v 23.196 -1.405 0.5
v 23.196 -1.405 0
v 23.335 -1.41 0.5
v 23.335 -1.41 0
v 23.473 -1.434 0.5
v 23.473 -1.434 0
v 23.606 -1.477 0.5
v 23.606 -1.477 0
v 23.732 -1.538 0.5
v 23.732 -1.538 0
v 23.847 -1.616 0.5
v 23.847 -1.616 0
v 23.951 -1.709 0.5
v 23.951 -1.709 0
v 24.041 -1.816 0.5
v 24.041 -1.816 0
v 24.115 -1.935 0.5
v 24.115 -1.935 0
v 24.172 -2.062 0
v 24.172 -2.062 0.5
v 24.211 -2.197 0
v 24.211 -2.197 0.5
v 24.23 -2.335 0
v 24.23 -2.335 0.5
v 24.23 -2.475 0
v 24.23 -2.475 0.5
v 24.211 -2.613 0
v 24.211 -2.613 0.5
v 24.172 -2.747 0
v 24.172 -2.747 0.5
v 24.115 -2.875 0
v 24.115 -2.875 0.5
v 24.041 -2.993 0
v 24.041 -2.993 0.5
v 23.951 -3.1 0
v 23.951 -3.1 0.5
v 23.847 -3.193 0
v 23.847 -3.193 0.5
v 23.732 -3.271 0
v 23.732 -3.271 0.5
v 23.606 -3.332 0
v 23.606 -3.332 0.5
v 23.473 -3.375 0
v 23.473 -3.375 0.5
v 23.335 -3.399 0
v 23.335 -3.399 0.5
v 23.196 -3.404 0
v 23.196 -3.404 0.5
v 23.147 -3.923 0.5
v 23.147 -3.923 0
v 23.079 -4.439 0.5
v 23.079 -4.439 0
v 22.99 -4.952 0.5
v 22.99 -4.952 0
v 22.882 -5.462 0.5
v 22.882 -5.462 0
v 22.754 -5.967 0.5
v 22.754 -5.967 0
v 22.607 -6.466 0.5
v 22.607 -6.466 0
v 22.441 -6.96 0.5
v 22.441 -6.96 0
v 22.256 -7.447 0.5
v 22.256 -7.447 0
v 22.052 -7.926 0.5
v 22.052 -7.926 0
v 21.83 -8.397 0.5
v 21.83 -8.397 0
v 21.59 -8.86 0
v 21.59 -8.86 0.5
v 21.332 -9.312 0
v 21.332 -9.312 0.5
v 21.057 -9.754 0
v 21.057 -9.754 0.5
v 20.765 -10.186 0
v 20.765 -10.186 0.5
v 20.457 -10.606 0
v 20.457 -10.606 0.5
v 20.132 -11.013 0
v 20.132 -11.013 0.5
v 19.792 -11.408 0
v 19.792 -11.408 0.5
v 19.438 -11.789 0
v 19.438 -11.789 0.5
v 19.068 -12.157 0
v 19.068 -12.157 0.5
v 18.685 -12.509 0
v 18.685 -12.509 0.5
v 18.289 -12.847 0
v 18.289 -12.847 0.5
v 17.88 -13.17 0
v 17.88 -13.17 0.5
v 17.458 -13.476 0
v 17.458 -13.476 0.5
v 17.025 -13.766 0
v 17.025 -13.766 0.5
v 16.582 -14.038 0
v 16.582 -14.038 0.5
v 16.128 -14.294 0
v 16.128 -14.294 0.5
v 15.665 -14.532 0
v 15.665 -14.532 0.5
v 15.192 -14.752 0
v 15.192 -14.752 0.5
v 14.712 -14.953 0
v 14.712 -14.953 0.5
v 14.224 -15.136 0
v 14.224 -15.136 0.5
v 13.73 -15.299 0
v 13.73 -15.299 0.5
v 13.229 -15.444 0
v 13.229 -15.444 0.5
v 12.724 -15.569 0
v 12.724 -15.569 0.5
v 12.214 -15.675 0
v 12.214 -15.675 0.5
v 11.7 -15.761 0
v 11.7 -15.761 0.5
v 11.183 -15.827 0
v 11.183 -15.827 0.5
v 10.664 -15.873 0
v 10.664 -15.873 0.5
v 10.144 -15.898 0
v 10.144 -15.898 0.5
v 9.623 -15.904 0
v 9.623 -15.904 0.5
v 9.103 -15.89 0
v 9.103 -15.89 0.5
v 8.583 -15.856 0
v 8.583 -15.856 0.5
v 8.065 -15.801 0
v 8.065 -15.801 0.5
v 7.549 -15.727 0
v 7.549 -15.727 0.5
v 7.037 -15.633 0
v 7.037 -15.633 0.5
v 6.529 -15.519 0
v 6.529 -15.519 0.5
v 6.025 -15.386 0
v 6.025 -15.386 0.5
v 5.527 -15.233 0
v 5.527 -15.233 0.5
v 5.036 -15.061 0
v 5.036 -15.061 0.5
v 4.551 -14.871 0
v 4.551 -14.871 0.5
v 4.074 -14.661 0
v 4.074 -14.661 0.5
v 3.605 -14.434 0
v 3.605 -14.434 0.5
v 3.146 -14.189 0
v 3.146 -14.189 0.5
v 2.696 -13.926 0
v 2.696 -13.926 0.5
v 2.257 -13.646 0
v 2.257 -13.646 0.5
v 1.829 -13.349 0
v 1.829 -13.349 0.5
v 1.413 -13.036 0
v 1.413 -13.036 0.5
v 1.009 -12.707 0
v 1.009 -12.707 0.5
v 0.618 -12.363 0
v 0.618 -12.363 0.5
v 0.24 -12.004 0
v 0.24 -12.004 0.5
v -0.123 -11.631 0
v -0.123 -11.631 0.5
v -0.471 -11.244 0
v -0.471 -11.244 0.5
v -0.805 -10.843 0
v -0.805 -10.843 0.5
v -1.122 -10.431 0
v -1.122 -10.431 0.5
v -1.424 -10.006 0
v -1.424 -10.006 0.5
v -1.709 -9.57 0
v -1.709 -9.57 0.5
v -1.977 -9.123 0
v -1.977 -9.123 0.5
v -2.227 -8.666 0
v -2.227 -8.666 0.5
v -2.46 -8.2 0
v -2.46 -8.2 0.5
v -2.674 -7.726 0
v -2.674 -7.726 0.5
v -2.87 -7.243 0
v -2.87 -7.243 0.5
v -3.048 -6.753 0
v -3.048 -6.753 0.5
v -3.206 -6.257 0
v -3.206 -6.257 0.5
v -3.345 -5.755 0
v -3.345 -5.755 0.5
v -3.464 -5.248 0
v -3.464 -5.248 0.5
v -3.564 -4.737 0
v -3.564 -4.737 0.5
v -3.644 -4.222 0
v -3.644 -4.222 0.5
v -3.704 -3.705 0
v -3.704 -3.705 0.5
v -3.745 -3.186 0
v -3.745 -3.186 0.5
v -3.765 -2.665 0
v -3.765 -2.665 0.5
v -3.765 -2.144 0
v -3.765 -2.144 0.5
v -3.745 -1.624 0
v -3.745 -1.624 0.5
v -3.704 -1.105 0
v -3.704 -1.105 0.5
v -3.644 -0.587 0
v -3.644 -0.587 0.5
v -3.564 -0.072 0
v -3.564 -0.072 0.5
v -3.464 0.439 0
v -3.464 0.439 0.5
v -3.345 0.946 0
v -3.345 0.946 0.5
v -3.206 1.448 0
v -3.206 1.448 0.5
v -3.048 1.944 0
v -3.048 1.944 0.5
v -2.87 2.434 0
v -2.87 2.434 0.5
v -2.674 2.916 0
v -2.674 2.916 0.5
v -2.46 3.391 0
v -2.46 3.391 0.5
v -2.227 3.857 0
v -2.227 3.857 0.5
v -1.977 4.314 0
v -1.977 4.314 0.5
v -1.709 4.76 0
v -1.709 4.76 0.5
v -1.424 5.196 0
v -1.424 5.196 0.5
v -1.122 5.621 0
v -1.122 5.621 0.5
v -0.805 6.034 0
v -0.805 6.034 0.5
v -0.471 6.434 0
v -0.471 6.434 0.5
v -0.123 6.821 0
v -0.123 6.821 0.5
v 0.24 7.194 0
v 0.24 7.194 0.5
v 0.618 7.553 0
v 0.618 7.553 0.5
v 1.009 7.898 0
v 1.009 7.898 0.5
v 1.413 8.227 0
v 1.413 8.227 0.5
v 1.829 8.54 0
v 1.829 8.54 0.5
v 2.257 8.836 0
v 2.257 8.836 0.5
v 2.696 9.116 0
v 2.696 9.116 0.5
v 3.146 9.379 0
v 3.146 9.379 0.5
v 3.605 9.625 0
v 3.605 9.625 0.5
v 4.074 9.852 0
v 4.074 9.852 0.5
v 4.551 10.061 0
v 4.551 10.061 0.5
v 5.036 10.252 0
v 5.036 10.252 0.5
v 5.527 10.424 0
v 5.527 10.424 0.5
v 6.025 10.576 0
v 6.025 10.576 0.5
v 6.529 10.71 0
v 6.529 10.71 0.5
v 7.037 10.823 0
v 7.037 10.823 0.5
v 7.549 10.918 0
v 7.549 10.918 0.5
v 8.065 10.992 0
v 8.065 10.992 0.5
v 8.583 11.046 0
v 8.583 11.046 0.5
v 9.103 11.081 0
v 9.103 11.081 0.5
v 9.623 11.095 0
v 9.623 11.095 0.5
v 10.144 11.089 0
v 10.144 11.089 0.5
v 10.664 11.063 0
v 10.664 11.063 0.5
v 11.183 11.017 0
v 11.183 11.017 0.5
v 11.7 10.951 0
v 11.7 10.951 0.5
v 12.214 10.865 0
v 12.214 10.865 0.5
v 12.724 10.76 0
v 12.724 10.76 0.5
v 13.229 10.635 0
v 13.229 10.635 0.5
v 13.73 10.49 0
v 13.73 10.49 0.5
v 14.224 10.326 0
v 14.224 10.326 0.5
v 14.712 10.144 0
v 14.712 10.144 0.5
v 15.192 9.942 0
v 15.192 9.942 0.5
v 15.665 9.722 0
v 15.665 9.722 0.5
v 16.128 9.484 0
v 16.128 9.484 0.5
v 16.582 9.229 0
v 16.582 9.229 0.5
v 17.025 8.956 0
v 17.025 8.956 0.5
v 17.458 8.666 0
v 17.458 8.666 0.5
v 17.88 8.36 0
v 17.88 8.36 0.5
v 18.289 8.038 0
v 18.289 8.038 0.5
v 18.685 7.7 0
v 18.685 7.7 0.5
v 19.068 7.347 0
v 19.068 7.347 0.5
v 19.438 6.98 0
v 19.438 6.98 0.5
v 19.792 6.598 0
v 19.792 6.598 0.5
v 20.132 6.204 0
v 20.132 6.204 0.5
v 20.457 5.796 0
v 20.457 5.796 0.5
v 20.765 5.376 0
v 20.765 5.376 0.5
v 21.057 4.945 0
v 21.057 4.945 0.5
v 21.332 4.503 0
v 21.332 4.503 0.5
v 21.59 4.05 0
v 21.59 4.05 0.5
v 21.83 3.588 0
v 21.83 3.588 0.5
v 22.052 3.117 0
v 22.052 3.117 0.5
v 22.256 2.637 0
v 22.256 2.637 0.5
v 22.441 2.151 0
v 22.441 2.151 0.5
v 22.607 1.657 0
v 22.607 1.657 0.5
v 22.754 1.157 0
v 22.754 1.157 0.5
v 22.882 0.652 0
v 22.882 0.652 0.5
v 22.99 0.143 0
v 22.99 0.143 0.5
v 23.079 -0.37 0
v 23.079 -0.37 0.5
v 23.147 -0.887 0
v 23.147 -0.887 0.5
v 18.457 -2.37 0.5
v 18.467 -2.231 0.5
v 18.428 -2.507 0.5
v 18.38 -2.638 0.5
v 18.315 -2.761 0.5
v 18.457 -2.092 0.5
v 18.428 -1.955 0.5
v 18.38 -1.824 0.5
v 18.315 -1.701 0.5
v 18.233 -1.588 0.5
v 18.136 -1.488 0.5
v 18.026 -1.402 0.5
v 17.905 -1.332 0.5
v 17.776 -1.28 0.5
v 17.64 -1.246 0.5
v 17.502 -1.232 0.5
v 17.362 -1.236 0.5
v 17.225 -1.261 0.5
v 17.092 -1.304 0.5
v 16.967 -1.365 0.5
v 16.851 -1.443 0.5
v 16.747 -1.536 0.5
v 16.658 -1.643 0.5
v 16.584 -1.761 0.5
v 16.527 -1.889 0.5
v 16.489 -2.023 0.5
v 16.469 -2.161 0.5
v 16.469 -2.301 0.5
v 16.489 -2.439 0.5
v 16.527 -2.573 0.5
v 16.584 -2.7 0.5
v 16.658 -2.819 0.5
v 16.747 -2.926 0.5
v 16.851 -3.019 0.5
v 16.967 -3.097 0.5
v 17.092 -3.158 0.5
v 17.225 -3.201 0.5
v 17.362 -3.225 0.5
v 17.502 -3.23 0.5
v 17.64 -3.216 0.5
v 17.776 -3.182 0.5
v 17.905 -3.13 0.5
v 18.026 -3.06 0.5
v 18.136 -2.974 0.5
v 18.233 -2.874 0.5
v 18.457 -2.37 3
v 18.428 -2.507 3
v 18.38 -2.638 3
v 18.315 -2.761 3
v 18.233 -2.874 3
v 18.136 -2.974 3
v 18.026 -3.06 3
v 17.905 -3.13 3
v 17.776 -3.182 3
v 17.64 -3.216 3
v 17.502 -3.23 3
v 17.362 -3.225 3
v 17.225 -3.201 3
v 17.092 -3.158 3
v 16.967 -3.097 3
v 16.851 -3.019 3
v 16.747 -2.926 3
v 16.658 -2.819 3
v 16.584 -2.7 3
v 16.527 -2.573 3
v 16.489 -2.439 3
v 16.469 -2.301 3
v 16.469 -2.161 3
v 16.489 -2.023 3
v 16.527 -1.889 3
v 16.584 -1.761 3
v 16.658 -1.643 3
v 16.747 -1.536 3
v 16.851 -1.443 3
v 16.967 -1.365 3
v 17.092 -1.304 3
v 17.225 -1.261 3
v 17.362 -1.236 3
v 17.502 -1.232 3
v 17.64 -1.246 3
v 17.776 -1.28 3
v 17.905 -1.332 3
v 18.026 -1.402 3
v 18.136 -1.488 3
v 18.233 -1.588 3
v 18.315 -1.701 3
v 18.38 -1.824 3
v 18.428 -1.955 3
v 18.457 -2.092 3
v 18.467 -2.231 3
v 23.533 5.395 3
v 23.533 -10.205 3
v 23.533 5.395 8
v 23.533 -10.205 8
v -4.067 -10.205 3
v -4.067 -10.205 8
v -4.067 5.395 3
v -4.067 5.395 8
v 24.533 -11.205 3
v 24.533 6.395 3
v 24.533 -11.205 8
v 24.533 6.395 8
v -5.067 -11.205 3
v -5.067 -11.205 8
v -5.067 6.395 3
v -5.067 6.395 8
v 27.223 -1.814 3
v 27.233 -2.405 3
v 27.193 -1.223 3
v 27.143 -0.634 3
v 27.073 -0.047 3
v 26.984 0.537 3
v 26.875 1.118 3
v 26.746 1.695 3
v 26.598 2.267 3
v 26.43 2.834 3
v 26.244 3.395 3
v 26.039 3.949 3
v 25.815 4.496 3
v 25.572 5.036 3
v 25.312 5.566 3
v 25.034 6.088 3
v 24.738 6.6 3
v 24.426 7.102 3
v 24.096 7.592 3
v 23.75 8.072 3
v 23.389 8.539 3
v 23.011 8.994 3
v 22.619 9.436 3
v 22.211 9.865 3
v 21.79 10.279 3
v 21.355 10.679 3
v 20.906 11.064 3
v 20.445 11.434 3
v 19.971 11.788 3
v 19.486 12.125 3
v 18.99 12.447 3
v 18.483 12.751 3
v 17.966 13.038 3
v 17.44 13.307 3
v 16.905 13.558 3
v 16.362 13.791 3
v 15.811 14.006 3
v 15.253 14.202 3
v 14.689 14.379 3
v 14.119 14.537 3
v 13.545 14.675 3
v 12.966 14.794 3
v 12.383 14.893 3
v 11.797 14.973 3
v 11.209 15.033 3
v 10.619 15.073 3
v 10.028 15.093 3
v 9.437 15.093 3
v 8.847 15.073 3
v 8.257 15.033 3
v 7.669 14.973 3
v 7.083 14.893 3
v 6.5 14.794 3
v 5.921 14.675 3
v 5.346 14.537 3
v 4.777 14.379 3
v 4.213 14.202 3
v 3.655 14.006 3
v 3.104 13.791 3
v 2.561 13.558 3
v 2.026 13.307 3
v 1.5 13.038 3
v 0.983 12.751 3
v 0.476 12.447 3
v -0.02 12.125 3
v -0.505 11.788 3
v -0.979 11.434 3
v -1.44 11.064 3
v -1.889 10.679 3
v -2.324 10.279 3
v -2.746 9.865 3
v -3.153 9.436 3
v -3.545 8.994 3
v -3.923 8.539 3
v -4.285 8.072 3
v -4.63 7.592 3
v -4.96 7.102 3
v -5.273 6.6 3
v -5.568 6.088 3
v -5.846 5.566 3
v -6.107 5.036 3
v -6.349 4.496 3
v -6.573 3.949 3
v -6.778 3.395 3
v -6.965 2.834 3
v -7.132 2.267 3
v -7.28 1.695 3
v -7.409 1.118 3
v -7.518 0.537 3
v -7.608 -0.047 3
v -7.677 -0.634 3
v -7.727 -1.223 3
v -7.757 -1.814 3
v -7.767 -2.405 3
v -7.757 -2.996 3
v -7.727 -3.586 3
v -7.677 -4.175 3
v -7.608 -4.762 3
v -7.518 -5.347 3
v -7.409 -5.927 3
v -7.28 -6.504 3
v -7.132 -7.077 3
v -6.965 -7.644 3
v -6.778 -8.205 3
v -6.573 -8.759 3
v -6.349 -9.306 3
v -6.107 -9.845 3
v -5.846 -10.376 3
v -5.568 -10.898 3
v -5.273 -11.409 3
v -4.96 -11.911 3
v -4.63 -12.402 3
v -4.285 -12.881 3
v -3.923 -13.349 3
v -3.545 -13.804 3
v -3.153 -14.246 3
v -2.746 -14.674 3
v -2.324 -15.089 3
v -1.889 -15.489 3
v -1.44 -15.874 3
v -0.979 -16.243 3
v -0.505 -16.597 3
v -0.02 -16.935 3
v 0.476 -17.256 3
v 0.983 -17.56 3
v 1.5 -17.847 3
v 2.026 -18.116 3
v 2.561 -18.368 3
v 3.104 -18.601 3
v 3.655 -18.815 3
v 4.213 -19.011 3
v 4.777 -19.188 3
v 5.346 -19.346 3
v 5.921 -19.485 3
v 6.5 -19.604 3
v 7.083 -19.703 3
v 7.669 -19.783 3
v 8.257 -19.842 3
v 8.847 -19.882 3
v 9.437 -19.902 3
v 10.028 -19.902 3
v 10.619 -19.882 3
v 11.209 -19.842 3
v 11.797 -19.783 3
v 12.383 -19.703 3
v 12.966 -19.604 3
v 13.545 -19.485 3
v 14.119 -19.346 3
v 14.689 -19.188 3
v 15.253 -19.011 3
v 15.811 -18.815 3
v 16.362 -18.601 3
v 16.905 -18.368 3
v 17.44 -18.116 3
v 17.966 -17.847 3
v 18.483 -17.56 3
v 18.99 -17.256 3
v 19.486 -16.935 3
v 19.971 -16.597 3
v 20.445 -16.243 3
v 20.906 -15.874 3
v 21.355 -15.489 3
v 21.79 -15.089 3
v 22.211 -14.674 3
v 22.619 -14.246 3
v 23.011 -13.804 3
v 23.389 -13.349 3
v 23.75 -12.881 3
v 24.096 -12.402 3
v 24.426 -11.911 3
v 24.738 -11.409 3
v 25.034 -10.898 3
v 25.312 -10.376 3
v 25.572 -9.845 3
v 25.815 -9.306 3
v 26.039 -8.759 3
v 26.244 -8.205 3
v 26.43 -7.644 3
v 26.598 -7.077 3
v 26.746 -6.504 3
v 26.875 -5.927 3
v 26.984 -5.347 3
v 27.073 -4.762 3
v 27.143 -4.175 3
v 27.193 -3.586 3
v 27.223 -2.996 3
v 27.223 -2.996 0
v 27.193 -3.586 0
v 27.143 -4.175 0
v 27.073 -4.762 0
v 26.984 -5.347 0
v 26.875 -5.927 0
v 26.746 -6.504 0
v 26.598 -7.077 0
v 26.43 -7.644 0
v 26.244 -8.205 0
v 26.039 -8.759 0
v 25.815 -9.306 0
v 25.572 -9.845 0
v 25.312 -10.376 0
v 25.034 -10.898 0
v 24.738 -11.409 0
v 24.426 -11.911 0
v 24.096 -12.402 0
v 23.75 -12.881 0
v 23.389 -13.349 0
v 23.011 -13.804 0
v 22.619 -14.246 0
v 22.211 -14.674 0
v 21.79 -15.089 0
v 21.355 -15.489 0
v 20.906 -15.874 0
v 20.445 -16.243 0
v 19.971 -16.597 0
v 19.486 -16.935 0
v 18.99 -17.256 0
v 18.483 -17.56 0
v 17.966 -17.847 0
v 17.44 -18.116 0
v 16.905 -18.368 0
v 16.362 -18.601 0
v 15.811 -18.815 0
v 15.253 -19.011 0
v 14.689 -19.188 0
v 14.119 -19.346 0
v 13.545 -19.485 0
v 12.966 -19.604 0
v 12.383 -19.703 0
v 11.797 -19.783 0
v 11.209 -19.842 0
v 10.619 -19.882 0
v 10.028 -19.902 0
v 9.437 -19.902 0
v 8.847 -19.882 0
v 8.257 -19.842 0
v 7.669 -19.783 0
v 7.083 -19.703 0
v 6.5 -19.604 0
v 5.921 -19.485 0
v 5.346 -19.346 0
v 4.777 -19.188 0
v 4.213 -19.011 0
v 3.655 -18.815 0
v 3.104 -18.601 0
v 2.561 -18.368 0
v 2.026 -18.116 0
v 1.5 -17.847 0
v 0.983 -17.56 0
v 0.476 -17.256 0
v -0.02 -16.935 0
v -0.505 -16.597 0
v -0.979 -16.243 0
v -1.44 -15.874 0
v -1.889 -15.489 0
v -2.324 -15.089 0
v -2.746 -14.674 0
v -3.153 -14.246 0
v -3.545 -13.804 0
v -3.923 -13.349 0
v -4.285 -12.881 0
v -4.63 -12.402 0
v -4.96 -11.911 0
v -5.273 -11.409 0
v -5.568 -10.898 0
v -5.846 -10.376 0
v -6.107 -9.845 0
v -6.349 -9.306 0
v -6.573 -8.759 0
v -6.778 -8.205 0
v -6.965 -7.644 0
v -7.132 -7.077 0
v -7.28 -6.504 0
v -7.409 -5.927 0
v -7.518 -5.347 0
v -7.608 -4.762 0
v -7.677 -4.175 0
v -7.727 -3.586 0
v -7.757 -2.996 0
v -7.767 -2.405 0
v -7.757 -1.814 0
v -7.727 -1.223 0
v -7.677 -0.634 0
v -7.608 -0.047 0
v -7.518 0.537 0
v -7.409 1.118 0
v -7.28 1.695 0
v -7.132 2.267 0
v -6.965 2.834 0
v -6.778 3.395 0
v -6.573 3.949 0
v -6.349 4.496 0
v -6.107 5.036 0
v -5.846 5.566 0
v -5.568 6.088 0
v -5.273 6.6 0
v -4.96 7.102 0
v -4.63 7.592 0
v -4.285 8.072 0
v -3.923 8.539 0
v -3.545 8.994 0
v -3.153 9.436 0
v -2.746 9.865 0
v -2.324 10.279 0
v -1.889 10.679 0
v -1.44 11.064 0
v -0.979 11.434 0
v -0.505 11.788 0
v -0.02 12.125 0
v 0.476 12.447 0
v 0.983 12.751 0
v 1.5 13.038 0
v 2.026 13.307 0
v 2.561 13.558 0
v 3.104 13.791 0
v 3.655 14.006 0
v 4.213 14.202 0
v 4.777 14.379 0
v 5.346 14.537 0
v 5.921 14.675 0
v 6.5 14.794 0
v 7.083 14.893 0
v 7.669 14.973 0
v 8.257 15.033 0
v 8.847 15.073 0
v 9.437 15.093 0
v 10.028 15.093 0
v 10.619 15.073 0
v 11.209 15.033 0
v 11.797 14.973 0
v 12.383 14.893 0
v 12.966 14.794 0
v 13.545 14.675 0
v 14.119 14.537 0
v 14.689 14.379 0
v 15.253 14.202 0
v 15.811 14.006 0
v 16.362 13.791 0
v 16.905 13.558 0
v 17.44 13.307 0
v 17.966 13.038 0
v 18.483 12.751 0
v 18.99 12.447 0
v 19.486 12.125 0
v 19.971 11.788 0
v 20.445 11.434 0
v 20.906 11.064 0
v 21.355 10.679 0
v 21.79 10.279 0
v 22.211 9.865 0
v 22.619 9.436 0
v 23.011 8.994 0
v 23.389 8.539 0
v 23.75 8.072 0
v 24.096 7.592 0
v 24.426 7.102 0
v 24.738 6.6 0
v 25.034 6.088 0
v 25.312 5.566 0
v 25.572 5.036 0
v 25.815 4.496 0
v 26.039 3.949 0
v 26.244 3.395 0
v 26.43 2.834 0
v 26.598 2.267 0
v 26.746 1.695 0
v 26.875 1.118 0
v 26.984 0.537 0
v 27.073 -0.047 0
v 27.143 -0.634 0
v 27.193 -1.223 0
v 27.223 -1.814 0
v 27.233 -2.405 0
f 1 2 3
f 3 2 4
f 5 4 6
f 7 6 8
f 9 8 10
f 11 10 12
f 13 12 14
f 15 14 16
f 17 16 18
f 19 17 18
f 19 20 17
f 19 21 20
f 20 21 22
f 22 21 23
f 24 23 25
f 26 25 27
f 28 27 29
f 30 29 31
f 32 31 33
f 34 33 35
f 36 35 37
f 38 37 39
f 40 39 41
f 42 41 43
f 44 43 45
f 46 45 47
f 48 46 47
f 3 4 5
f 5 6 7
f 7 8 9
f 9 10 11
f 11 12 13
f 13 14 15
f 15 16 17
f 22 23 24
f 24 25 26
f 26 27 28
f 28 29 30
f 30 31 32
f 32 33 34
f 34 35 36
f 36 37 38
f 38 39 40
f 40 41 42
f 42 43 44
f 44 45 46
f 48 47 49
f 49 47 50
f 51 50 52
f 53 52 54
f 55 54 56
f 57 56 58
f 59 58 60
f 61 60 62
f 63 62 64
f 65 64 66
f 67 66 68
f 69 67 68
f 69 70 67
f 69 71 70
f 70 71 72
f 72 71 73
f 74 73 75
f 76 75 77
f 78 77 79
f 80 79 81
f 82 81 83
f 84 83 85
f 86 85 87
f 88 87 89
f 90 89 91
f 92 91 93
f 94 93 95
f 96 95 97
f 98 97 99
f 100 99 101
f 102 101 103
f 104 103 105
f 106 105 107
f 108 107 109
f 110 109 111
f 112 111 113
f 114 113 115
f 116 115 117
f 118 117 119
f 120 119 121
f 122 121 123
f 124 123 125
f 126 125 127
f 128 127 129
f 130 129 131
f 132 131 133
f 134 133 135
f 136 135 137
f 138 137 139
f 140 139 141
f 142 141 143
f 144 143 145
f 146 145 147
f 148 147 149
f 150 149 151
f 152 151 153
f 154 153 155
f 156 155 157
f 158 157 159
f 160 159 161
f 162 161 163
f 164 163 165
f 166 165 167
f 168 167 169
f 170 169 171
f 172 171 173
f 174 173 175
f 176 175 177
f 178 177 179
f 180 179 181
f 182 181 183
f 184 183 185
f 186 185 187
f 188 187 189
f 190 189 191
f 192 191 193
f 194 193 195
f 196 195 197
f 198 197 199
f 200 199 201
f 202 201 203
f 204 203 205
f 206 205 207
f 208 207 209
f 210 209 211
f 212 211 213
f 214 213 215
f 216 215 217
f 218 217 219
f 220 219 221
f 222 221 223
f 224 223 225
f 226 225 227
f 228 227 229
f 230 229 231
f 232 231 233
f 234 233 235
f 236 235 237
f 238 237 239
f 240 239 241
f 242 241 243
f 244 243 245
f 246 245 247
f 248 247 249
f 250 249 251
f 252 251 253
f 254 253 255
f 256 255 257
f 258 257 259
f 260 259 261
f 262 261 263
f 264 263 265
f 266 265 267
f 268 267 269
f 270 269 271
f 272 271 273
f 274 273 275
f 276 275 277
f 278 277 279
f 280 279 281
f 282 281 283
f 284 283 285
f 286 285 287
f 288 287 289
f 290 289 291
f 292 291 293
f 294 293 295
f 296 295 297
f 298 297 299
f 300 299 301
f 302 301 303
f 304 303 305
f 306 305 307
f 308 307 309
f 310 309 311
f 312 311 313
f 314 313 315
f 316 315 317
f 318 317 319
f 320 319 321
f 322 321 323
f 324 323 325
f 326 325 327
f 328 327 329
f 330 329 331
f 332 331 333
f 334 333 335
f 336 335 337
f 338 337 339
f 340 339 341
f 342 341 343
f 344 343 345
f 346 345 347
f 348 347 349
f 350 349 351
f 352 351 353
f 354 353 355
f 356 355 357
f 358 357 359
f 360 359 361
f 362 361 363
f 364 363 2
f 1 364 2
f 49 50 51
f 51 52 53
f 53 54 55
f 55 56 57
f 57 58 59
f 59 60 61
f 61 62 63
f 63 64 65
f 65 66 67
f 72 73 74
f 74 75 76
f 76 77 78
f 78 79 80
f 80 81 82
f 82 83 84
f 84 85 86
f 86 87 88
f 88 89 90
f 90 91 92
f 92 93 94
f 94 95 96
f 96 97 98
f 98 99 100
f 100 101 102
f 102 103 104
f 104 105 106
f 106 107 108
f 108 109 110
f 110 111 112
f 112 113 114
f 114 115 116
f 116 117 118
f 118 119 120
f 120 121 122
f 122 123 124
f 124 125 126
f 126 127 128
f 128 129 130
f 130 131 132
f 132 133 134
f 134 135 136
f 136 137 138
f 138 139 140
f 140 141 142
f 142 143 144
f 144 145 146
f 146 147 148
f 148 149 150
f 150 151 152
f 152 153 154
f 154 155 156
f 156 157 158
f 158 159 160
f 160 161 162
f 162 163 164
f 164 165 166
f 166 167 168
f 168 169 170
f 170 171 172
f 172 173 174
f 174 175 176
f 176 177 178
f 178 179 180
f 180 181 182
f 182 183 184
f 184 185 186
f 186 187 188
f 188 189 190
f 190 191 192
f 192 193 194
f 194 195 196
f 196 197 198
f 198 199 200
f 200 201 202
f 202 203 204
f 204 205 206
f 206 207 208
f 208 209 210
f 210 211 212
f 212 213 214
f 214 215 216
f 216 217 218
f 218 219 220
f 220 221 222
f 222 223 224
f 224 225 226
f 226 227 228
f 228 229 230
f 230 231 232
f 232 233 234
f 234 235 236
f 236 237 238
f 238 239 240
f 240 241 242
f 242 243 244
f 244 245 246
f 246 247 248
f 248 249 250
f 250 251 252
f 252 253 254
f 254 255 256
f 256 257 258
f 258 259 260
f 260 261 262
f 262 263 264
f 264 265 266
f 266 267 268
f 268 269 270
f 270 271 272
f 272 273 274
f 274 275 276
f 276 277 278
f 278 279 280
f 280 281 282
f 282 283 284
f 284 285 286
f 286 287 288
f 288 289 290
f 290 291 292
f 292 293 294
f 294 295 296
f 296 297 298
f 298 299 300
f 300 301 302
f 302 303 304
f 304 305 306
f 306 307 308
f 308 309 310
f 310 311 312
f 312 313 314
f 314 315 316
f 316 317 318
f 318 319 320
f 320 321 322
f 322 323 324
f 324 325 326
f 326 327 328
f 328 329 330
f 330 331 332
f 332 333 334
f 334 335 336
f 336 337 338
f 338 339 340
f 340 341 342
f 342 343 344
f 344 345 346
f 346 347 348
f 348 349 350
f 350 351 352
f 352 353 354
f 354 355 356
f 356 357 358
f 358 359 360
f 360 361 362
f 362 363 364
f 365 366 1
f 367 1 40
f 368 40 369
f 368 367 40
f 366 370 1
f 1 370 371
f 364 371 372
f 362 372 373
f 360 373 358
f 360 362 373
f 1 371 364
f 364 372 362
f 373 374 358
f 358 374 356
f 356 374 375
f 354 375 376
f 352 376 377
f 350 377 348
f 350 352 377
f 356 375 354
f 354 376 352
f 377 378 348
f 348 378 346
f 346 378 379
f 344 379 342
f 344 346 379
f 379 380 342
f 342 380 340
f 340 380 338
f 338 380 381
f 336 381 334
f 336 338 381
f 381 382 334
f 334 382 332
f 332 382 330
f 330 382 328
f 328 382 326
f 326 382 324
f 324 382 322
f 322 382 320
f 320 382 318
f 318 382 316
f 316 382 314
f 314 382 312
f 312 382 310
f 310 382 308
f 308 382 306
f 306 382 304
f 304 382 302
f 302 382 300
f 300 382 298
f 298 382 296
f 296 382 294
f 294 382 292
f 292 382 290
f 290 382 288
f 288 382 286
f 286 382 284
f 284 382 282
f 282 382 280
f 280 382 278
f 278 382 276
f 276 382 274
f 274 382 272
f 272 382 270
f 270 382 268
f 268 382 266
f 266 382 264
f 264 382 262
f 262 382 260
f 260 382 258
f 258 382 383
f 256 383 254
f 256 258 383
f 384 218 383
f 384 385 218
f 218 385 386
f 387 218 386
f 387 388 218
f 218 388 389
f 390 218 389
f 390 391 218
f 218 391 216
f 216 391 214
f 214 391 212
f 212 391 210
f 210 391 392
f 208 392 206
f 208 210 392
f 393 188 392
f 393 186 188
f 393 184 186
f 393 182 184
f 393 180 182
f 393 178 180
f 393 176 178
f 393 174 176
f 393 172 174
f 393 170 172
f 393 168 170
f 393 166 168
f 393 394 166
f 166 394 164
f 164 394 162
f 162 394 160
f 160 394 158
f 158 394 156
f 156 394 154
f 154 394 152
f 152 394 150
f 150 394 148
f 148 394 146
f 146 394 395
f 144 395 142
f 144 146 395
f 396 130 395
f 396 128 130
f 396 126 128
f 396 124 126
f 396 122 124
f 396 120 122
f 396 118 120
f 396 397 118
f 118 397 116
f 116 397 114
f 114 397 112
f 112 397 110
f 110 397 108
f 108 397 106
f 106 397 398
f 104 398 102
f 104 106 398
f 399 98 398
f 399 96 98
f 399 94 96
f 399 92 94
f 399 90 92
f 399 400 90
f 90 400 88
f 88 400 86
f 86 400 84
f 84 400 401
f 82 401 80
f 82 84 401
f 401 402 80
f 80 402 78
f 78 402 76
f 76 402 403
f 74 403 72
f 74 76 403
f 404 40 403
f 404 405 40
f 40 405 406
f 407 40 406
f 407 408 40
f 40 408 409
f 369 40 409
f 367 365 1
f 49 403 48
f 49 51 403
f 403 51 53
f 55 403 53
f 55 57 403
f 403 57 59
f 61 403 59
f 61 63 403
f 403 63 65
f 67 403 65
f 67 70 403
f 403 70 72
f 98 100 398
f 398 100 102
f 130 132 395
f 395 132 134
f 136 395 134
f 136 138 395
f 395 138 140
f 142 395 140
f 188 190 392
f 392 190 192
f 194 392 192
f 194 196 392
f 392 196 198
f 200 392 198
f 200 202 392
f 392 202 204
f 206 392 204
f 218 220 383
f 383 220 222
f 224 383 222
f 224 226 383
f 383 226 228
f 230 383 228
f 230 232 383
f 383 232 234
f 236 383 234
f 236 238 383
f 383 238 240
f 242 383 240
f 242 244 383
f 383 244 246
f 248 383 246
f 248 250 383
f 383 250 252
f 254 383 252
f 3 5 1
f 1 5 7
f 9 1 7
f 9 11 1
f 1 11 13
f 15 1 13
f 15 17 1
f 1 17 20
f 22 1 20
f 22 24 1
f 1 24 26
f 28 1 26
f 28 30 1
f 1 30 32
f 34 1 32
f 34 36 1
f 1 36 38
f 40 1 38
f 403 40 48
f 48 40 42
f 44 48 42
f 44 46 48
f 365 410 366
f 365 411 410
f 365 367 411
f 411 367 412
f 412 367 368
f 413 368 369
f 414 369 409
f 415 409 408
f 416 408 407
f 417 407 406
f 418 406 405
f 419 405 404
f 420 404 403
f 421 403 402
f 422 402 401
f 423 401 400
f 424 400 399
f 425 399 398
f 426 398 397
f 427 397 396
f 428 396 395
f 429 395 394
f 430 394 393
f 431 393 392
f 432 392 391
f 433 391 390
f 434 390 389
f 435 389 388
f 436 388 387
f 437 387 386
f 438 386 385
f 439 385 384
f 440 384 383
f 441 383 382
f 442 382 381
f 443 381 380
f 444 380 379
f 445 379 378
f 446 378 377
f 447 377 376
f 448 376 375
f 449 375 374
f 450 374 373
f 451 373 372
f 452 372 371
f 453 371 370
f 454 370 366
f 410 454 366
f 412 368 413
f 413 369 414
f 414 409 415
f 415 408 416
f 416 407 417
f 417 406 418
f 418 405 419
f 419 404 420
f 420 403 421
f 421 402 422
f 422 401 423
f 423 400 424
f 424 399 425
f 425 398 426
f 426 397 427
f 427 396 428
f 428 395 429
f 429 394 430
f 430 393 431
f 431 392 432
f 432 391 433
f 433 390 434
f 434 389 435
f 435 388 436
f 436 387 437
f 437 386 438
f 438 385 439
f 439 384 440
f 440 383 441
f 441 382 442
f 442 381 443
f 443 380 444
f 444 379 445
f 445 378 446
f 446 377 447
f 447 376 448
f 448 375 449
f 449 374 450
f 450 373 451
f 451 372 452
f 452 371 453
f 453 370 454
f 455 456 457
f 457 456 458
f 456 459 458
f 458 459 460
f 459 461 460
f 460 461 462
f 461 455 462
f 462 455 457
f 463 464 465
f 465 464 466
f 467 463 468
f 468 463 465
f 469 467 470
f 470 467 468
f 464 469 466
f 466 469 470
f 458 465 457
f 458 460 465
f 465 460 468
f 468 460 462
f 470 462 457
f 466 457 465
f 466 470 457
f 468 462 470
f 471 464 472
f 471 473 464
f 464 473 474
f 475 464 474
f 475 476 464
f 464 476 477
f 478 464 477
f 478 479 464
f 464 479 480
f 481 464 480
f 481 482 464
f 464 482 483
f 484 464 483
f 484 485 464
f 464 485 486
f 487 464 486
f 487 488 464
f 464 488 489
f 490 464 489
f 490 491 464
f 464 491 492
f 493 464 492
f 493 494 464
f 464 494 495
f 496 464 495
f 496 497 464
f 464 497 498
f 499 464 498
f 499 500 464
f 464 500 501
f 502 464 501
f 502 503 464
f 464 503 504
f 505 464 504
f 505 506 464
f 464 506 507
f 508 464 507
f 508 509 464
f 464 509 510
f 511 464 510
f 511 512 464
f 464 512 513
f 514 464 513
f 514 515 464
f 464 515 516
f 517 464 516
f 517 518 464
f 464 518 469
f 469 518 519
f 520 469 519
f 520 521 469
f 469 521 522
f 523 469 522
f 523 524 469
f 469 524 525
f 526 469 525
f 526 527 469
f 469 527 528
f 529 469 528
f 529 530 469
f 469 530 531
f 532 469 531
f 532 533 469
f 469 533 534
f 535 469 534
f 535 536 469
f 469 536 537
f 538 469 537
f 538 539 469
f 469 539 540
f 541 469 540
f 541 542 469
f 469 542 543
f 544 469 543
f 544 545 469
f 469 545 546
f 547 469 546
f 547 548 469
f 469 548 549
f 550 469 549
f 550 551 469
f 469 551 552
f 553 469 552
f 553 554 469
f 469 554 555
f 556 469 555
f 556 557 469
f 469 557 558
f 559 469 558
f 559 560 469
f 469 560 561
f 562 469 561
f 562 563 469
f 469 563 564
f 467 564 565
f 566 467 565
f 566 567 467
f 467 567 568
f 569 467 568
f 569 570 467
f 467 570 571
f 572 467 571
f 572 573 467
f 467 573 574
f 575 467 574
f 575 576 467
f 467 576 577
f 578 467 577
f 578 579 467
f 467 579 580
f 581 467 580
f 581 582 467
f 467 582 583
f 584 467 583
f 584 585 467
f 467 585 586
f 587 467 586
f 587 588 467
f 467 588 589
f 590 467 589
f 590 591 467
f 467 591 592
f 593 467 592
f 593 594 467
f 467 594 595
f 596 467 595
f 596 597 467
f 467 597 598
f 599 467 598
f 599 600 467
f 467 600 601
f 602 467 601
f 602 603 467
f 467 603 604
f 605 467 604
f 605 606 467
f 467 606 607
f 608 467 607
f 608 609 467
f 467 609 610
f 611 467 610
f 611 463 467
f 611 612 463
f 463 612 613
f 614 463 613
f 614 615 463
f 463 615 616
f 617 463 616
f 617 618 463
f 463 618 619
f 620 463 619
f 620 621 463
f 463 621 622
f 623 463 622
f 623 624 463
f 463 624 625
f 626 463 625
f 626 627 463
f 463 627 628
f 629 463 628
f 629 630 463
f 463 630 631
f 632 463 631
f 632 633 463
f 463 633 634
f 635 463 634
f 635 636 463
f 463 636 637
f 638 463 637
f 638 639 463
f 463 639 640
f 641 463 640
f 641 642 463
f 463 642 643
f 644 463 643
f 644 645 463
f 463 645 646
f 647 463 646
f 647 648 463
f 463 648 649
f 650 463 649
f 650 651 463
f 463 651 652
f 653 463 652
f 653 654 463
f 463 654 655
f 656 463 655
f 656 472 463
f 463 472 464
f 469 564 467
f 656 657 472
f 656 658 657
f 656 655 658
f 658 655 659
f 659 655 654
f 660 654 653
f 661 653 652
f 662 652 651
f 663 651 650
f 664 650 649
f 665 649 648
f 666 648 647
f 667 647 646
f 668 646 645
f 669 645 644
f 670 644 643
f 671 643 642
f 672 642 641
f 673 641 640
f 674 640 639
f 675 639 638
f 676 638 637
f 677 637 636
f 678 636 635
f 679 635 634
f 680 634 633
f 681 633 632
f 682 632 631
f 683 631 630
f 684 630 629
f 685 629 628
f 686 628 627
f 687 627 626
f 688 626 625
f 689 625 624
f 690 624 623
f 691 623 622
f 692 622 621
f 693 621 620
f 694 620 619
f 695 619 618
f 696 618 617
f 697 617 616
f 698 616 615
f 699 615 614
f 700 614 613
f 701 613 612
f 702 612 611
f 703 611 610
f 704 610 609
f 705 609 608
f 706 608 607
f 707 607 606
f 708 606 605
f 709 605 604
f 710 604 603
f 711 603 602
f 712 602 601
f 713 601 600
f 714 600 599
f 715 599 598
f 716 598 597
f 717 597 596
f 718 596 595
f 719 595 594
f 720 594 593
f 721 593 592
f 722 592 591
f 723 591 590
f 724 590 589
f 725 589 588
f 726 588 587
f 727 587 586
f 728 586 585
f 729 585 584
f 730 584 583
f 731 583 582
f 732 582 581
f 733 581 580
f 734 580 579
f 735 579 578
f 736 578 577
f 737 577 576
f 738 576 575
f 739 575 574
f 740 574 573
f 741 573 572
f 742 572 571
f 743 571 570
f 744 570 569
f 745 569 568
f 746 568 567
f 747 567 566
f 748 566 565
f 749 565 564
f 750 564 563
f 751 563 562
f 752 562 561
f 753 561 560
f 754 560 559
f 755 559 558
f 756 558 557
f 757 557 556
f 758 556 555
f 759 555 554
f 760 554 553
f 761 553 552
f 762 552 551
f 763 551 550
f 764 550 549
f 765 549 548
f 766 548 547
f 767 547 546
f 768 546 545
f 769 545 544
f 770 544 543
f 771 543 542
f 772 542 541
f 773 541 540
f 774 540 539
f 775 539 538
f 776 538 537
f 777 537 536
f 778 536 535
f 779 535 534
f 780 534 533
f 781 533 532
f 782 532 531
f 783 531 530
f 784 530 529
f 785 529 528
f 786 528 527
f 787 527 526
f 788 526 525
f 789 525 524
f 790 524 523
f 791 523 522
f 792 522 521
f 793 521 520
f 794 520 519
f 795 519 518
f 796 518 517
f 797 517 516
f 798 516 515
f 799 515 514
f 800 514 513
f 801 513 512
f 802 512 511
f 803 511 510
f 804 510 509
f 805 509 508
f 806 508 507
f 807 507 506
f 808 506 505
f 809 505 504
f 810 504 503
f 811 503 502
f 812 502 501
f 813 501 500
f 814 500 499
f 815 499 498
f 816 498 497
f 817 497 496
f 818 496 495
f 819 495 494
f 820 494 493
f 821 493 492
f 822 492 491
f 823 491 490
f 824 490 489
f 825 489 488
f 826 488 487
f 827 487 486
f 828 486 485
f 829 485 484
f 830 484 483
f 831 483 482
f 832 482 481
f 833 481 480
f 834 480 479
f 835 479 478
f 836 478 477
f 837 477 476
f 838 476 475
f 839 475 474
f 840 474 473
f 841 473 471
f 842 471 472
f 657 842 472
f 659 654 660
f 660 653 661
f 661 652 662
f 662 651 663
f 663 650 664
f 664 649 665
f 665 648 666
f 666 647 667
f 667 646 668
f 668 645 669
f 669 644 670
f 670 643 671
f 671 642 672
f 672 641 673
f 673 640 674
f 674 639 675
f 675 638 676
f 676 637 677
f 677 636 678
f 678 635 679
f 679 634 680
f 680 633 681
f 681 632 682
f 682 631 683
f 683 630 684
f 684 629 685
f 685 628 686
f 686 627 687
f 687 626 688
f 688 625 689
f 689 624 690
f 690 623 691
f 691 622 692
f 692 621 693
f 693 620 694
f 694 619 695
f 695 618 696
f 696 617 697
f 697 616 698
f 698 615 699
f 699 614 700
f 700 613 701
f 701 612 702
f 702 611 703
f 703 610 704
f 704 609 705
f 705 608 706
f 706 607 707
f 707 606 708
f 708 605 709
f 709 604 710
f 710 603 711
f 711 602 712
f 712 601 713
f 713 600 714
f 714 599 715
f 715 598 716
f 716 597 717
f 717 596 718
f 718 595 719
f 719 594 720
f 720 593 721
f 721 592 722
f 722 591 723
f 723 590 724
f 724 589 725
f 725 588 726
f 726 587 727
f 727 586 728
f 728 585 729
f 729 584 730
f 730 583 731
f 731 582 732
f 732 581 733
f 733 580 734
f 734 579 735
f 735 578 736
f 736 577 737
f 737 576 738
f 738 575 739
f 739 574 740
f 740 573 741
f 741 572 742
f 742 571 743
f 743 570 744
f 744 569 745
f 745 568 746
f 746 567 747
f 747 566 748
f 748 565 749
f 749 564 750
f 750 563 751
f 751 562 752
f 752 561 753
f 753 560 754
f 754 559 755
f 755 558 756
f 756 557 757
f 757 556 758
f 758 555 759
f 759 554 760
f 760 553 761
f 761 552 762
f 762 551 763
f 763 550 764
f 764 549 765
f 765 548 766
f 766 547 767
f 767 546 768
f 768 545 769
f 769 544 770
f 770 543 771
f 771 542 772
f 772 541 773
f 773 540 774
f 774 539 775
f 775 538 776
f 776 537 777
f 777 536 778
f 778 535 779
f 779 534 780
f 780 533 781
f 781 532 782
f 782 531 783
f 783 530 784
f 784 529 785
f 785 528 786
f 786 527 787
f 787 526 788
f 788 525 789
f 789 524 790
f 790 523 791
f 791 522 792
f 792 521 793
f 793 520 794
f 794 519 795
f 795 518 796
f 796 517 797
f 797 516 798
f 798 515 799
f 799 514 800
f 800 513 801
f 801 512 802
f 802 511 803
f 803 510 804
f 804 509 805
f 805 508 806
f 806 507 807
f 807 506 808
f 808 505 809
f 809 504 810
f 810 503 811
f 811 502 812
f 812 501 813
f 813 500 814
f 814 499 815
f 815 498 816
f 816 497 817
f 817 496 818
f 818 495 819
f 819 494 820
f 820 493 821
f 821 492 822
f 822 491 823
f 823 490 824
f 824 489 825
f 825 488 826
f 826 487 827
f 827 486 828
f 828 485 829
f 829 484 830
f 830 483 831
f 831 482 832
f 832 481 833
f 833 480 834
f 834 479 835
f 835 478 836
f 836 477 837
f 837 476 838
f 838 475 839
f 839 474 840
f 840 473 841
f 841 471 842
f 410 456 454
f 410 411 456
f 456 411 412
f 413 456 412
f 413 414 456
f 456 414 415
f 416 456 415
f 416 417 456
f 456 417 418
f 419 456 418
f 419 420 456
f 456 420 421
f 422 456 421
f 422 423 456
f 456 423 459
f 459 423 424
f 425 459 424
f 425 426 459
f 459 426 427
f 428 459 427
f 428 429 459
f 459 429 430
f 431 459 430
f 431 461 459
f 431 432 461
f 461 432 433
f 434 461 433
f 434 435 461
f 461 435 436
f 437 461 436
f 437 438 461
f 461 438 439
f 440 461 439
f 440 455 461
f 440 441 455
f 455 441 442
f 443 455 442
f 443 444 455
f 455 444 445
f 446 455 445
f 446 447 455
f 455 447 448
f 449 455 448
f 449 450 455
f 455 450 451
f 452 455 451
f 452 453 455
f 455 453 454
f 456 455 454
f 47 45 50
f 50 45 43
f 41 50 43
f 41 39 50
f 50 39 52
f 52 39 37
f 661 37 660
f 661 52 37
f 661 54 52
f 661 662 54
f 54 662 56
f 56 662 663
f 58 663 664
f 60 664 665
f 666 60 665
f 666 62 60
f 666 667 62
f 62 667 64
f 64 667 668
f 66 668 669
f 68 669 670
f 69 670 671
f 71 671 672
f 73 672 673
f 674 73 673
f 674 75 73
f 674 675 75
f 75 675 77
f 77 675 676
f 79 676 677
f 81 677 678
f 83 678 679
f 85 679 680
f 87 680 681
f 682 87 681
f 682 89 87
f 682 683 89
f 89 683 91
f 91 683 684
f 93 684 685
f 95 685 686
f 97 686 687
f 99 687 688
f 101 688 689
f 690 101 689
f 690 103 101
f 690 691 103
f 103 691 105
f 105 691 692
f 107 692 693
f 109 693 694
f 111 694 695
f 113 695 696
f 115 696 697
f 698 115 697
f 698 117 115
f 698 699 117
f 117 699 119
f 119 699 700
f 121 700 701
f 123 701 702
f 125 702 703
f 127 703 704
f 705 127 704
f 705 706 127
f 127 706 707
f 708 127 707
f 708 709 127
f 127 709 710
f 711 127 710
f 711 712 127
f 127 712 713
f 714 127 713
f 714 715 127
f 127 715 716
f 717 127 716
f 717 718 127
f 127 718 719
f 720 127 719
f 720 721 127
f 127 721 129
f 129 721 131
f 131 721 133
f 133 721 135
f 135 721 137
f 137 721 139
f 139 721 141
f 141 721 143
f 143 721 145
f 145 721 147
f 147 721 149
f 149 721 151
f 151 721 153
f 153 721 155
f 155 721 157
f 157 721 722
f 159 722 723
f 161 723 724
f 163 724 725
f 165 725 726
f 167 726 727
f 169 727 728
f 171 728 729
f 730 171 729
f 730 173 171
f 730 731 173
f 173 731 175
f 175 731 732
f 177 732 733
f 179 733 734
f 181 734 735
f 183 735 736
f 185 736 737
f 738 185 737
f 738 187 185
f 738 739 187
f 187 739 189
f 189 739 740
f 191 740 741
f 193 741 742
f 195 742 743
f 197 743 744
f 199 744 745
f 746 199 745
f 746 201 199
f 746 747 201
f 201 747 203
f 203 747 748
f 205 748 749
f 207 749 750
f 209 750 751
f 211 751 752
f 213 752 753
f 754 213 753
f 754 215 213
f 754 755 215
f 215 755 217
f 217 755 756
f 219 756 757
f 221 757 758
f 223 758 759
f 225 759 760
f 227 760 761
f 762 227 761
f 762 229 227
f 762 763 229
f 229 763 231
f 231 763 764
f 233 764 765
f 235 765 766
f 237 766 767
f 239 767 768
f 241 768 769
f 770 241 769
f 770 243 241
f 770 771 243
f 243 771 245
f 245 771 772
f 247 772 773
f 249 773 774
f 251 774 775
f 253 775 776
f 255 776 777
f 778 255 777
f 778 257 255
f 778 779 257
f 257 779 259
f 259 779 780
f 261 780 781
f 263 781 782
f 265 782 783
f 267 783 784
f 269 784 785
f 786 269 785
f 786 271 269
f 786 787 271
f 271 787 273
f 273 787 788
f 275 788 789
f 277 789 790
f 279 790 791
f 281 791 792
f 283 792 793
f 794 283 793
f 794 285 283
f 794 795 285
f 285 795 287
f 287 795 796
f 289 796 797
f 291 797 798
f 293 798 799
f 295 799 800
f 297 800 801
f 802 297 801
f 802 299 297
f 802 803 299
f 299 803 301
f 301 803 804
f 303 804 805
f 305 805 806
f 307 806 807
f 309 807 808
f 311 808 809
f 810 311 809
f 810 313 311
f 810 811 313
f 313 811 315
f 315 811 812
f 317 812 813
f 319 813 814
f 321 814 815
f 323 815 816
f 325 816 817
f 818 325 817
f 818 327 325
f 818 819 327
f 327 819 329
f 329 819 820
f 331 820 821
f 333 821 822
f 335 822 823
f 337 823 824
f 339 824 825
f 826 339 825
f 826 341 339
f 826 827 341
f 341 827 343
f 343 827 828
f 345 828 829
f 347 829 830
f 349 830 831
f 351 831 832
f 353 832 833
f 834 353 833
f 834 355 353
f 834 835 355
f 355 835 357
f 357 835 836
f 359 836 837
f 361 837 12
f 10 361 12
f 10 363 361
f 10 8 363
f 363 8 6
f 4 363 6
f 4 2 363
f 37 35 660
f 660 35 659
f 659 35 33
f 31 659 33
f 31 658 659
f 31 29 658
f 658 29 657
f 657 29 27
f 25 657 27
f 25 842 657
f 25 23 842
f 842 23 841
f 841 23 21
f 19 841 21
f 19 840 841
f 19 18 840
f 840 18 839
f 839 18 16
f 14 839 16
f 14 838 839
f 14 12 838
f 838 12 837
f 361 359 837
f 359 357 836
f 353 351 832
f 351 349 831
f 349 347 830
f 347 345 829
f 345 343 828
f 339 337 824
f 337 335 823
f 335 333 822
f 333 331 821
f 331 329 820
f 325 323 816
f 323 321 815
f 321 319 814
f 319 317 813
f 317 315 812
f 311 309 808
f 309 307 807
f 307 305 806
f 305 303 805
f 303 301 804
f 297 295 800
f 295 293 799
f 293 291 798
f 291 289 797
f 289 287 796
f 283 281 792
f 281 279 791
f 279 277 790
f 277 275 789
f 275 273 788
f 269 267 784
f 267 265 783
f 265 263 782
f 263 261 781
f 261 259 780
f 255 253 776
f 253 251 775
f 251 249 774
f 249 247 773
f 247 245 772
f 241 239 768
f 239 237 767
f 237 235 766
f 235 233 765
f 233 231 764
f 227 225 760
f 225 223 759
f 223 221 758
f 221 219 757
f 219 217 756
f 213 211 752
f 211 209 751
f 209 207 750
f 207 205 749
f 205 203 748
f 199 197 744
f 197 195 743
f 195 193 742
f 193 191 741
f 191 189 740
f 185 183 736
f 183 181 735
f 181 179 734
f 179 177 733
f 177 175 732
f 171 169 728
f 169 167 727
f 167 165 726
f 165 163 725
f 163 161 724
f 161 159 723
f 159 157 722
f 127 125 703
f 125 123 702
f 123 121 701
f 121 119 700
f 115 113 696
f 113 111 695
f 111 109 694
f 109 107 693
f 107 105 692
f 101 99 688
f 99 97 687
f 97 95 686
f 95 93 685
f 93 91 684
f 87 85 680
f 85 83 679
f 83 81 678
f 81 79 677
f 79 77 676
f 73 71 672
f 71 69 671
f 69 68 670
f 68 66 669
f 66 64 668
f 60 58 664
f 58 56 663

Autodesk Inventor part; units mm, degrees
ref_plane "YZ Plane" through (0, 0, 0) normal (1, 0, 0) x (0, 1, 0)
ref_plane "XZ Plane" through (0, 0, 0) normal (0, 1, 0) x (-1, 0, 0)
ref_plane "XY Plane" through (0, 0, 0) normal (0, 0, 1) x (1, 0, 0)
sketch "Boceto1" plane through (0, 0, 0) normal (0, 0, 1) x (1, 0, 0)
  line L0 (26.7329, 8.5953) -> (-7.2671, -13.4047) construction
  line L1 (-7.2671, 8.5953) -> (26.7329, -13.4047) construction
  circle A0 centre (9.7329, -2.4047) radius 17.5
  point P0 (0, 0)
  dimension "d13" = 35
extrude "Extrusión1" add sketch "Boceto1" along normal blind 3
sketch "Boceto2" plane through (0, 0, 3) normal (0, 0, 1) x (1, 0, 0)
  line L0 (-7.2671, 8.5953) -> (26.7329, -13.4047) construction
  line L1 (26.7329, 8.5953) -> (-7.2671, -13.4047) construction
  line L2 (-5.0671, 6.3953) -> (24.5329, 6.3953)
  line L3 (24.5329, 6.3953) -> (24.5329, -11.2047)
  line L4 (24.5329, -11.2047) -> (-5.0671, -11.2047)
  line L5 (-5.0671, -11.2047) -> (-5.0671, 6.3953)
  line L6 (-5.0671, 6.3953) -> (24.5329, -11.2047) construction
  line L7 (-5.0671, -11.2047) -> (24.5329, 6.3953) construction
  line L8 (-4.0671, 5.3953) -> (23.5329, 5.3953)
  line L9 (23.5329, 5.3953) -> (23.5329, -10.2047)
  line L10 (23.5329, -10.2047) -> (-4.0671, -10.2047)
  line L11 (-4.0671, -10.2047) -> (-4.0671, 5.3953)
  line L12 (-4.0671, 5.3953) -> (23.5329, -10.2047) construction
  line L13 (23.5329, 5.3953) -> (-4.0671, -10.2047) construction
  point P0 (0, 0)
  point P1 (9.7329, -2.4047)
  dimension "d4" = 29.6
  dimension "d5" = 17.6
  dimension "d6" = 27.6
  dimension "d7" = 15.6
extrude "Extrusión2" add sketch "Boceto2" along normal blind 5
sketch "Boceto5" plane through (9.7329, -2.4047, 0) normal (0, 0, -1) x (-1, 0, 0)
  arc A0 (-13.463, -0.9993) -> (-13.463, 0.9993) centre (0, 0) ccw
  arc A1 (-13.463, 0.9993) -> (-13.463, -0.9993) centre (-13.4997, 0) ccw
  point P0 (9.7329, 2.4047)
  dimension "d14" = 27
  dimension "d15" = 2
hole "Hole1" at (17.4667, -2.2309, 0) direction (0, 0, 1) diameter 2 depth 4
extrude "Extrusión3" cut sketch "Boceto5" against normal blind 0.5
equation "\"Radio_pliegue\" = Grosor"
equation "\"Anchura_desahogo_plegado\" = Grosor"
equation "\"Profundidad_desahogo_plegado\" = 0.5 * Grosor"
equation "\"Tamaño_destalonado\" = 4 * Grosor"
equation "\"Remanente_mínimo\" = 2 * Grosor"
equation "\"Radiodetransición\" = Radio_pliegue"
equation "\"Tamaño_de_radio_de_Jacobi\" = Radio_pliegue"
equation "\"TamañoSeparación\" = Grosor"
equation "\"Grosor\" = 0.5"
properties part number "Tapa2"
